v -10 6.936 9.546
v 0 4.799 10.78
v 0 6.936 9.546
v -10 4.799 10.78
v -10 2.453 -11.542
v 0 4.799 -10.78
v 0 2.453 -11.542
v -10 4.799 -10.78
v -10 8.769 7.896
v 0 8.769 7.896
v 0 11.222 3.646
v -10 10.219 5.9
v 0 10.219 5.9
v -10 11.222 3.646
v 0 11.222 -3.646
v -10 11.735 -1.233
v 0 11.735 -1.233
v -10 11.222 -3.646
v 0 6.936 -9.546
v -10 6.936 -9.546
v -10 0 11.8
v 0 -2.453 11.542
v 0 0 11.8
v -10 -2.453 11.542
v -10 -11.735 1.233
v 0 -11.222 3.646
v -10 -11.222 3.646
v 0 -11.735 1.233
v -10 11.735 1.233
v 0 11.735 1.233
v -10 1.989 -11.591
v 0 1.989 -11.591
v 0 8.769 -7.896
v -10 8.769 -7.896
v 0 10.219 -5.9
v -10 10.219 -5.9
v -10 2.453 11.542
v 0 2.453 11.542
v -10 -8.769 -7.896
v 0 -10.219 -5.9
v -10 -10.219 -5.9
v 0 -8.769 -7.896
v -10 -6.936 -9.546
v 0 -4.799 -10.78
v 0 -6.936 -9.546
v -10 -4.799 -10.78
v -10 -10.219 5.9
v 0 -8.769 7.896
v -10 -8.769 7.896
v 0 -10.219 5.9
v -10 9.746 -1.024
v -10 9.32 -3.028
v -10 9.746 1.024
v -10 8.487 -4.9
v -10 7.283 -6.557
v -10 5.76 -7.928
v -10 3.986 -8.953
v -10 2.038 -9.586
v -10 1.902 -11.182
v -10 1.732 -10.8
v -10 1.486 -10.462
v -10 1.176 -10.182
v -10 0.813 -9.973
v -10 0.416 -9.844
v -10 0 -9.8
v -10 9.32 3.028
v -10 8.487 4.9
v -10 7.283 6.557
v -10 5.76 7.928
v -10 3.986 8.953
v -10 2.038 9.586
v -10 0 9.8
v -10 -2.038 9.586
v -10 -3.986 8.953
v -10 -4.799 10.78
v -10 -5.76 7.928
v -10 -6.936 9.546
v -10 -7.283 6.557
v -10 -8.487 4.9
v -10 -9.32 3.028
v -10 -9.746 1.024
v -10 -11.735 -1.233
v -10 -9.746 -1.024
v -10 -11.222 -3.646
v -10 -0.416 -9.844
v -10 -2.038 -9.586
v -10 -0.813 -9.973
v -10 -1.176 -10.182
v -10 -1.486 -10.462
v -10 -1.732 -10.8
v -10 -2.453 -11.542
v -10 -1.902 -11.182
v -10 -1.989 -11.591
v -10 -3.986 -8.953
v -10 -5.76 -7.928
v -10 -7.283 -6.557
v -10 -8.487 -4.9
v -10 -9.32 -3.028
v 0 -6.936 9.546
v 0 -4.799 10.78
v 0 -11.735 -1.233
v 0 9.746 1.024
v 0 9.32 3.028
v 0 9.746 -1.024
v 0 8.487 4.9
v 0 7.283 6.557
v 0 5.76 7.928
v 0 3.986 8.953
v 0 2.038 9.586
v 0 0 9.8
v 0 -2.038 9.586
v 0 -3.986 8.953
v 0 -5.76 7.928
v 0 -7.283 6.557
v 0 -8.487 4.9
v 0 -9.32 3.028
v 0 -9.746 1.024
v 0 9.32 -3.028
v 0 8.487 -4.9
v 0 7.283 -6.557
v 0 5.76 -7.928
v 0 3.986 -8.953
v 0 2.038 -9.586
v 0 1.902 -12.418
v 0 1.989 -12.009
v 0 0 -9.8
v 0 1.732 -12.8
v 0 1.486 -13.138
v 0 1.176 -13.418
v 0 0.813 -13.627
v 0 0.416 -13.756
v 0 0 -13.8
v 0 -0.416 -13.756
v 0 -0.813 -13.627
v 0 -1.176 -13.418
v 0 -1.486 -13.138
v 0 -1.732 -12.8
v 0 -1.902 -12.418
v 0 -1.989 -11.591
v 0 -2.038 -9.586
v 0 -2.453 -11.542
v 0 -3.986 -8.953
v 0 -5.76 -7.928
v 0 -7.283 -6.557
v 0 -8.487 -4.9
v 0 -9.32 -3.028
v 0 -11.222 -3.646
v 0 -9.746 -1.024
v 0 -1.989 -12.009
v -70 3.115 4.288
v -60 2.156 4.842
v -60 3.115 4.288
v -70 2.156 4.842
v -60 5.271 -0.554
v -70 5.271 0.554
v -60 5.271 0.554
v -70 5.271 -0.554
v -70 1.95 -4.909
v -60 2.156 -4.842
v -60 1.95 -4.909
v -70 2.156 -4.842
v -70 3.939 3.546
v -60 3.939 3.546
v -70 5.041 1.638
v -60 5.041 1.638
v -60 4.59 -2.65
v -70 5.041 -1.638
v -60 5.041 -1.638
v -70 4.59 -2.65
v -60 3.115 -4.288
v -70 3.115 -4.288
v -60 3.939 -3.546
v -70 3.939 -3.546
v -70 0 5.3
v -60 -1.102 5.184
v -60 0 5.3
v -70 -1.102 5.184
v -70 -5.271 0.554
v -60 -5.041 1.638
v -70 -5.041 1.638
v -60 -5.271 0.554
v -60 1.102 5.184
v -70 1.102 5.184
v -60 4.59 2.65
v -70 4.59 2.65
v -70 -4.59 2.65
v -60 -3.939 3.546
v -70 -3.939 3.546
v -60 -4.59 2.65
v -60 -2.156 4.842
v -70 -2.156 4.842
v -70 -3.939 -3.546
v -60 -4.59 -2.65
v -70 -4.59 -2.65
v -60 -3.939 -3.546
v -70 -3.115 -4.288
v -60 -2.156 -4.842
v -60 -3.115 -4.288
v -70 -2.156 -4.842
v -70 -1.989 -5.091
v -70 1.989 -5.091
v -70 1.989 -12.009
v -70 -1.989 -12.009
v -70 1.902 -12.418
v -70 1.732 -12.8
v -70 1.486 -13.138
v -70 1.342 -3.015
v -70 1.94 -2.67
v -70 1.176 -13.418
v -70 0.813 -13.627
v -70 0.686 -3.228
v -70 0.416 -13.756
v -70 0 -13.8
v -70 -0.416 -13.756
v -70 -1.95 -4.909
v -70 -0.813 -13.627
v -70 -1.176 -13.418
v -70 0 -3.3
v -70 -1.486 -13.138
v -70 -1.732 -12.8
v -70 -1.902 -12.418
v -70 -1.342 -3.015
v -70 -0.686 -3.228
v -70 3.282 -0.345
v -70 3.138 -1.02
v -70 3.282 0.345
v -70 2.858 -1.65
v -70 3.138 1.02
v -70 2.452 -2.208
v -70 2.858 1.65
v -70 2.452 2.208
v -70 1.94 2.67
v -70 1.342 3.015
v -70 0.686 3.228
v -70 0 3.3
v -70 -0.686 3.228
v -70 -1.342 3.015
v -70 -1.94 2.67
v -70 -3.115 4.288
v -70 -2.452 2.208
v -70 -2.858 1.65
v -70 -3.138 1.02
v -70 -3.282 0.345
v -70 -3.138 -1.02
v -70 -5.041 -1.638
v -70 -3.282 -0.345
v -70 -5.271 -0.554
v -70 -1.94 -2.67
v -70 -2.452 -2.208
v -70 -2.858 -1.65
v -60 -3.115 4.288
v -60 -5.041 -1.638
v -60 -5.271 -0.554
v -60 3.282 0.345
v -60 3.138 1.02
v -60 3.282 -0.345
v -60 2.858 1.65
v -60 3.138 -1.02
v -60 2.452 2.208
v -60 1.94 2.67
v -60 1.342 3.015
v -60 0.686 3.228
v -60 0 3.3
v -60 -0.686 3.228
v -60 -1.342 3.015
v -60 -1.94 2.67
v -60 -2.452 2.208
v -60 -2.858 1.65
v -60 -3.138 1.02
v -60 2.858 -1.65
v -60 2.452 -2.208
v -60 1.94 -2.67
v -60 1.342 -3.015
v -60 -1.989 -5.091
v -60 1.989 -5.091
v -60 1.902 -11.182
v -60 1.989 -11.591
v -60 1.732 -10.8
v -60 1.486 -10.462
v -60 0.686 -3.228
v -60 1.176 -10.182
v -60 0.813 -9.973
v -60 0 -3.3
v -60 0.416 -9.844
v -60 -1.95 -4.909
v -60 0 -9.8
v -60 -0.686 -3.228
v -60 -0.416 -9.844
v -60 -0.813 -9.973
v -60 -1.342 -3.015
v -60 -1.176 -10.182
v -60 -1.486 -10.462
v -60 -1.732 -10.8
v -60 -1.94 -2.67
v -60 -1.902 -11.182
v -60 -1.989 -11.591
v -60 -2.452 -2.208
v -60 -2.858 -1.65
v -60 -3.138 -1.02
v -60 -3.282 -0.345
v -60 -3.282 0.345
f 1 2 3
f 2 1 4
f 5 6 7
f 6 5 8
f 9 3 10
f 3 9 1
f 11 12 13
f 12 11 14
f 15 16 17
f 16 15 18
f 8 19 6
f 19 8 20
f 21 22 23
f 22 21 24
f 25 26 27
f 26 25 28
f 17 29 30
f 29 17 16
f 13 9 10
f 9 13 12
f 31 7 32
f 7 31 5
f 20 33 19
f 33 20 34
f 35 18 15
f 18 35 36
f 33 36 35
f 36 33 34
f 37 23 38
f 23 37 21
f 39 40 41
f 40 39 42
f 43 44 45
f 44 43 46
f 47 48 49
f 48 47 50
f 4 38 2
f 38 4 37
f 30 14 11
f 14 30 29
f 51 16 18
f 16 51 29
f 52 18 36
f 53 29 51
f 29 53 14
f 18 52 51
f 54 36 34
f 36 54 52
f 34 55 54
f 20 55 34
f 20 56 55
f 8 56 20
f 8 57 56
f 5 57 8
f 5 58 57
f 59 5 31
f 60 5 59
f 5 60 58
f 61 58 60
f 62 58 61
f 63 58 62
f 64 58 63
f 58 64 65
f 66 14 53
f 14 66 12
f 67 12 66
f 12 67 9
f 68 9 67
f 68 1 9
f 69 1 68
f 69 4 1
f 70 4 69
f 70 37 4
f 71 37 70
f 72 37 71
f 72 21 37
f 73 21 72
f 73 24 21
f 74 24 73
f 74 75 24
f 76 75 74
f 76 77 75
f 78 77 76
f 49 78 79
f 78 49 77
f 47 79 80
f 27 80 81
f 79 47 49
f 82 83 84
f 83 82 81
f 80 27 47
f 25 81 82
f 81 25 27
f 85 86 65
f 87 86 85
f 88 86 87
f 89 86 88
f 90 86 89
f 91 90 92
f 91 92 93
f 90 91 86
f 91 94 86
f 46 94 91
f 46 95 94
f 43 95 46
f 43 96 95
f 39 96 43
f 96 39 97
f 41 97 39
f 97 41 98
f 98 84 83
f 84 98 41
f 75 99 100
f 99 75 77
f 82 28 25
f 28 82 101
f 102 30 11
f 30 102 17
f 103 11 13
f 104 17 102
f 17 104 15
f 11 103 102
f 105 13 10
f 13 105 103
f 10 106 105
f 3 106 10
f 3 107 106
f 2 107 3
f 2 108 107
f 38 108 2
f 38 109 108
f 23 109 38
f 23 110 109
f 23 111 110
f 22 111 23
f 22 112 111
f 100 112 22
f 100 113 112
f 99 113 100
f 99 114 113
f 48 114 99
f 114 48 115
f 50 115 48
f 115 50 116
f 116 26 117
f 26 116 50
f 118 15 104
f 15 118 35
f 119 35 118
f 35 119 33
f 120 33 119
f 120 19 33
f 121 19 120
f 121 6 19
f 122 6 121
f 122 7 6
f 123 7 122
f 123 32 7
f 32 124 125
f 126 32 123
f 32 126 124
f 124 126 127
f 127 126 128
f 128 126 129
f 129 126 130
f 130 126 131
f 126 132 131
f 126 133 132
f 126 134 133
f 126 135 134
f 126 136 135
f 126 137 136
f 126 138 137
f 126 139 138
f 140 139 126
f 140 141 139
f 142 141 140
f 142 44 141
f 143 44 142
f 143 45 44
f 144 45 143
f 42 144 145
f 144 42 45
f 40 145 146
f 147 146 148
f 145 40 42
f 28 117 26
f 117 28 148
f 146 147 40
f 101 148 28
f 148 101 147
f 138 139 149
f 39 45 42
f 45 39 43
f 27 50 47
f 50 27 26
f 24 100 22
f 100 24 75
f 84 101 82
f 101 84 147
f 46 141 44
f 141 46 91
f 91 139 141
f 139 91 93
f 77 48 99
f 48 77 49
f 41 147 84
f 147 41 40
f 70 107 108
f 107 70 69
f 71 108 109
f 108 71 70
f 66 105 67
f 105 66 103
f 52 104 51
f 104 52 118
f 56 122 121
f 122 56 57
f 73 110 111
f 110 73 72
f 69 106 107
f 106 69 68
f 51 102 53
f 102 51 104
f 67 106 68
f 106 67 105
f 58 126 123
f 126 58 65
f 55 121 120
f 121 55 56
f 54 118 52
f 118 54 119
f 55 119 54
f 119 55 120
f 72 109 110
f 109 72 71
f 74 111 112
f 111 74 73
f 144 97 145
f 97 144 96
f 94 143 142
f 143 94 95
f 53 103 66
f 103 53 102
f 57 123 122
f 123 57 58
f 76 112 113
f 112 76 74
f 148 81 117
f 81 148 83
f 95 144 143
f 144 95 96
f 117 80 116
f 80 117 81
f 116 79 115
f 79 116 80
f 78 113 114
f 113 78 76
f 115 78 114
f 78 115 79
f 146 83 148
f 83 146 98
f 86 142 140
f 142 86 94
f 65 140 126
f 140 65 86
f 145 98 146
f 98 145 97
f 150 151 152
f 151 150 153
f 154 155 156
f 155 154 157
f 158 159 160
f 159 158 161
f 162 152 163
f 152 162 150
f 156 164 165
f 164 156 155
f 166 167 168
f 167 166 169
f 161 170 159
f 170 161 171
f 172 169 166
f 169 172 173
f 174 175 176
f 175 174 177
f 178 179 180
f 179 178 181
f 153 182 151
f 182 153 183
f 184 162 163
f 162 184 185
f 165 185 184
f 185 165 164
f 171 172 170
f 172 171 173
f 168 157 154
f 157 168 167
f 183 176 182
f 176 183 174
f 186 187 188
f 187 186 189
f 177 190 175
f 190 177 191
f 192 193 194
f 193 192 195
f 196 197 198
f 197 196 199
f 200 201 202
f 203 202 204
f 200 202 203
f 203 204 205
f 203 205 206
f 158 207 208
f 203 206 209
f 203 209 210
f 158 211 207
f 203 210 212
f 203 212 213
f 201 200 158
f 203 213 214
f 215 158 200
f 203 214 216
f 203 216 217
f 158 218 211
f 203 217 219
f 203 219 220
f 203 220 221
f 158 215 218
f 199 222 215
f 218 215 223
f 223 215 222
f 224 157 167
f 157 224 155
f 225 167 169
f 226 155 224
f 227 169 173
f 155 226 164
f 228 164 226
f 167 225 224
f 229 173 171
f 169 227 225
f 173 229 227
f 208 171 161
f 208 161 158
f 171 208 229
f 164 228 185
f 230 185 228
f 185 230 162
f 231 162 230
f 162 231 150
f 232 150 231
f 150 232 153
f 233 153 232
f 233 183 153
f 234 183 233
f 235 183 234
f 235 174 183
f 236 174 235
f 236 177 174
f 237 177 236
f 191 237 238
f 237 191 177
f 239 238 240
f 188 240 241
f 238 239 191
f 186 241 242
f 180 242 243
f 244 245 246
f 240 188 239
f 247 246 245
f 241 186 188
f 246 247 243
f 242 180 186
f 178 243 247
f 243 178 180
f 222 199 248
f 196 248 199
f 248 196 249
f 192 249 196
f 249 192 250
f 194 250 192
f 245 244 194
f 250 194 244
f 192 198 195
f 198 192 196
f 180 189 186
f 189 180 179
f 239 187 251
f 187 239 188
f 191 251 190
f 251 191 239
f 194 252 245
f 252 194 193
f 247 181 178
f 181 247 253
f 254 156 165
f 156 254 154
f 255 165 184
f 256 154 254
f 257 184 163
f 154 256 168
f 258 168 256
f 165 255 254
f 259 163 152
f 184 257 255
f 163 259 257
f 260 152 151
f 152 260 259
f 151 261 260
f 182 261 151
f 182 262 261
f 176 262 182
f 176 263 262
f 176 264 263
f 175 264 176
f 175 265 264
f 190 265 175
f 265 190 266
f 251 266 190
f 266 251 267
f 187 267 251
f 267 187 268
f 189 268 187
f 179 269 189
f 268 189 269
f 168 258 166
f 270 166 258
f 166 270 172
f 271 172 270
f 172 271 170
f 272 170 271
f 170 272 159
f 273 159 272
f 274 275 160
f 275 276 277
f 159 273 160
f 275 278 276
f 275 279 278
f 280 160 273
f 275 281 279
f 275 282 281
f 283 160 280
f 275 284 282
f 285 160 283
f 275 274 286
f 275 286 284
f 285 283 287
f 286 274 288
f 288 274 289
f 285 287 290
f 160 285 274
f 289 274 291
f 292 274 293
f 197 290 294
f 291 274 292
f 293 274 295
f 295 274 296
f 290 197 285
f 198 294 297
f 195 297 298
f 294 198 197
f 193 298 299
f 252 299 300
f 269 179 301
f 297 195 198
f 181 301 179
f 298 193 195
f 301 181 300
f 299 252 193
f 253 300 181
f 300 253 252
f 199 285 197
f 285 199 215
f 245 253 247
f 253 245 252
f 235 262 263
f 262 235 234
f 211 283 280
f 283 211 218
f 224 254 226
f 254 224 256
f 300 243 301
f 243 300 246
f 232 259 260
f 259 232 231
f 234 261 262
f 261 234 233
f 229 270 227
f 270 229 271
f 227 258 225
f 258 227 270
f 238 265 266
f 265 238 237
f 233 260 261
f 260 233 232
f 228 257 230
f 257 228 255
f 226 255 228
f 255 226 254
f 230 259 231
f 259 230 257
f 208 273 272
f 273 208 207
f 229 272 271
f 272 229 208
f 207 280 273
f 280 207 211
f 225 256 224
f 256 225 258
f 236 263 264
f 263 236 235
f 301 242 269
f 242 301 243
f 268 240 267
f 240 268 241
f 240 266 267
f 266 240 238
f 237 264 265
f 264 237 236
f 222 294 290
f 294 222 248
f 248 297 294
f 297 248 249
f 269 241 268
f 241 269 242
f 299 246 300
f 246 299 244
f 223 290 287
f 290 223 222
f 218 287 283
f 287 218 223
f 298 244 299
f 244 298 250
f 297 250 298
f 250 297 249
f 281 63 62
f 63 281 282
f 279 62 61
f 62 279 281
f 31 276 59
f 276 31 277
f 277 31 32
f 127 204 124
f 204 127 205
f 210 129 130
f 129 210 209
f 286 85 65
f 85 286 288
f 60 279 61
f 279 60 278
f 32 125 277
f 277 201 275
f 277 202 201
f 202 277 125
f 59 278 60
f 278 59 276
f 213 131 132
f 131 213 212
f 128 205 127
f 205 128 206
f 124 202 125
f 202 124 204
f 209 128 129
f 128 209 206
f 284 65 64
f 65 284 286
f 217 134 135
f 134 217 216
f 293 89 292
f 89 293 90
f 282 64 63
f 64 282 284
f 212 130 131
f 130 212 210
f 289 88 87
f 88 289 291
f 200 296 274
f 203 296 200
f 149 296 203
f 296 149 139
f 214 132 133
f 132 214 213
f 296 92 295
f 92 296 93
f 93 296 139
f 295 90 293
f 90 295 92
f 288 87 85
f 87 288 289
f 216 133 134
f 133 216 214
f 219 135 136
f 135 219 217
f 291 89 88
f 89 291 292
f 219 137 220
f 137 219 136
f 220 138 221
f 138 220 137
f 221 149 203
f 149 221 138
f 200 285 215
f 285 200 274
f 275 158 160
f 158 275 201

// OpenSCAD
// Coax hanger for strain relief - VE3XEC

// Slip onto coaxial cable before installing connector, so that the larger circle is toward
// where the connector will be.  Takes some weight off of soldered/crimped connections.

// Configuration
connector_od = 19.6; // Connector shell outer diameter.  Leave some wiggle room
connector_length = 40; // Open end of connector shell to end of reducer (fully engaged)
coax_od = 6.6; // Coax outer diameter.  Leave some wiggle room
wall_thickness = 4; // 4 mm should be strong enough, but increase as needed
shell_length = 10; // Length of the sleeve portions

// Configurable but probably best left alone
$fn = 30;
total_length = connector_length + shell_length + 20; // Stand off 2 cm from end of reducer

rotate([0, -90, 0]) { // Prints a bit faster and may be more robust if rotated thusly.
    union() {
        
        difference() {
            cylinder(d = connector_od + wall_thickness, h = shell_length);
            cylinder(d = connector_od, h = shell_length);
        }
        
        translate([-((connector_od + wall_thickness) / 2), 0, 0]) {
            cylinder(d = wall_thickness, h = total_length - shell_length);
        }
        
        translate([0, 0, total_length - shell_length]) {
            difference() {
                cylinder(d = coax_od + wall_thickness, h = shell_length);
                cylinder(d = coax_od, h = shell_length);
            }
        }
        
        hull() {
            translate([-((connector_od + wall_thickness) / 2), 0, total_length - shell_length]) {
                cylinder(d = wall_thickness, h = shell_length);
            }
            translate([-((coax_od + wall_thickness) / 2), 0, total_length - shell_length]) {
                cylinder(d = wall_thickness, h = shell_length);
            }
        }
        
    }
}
